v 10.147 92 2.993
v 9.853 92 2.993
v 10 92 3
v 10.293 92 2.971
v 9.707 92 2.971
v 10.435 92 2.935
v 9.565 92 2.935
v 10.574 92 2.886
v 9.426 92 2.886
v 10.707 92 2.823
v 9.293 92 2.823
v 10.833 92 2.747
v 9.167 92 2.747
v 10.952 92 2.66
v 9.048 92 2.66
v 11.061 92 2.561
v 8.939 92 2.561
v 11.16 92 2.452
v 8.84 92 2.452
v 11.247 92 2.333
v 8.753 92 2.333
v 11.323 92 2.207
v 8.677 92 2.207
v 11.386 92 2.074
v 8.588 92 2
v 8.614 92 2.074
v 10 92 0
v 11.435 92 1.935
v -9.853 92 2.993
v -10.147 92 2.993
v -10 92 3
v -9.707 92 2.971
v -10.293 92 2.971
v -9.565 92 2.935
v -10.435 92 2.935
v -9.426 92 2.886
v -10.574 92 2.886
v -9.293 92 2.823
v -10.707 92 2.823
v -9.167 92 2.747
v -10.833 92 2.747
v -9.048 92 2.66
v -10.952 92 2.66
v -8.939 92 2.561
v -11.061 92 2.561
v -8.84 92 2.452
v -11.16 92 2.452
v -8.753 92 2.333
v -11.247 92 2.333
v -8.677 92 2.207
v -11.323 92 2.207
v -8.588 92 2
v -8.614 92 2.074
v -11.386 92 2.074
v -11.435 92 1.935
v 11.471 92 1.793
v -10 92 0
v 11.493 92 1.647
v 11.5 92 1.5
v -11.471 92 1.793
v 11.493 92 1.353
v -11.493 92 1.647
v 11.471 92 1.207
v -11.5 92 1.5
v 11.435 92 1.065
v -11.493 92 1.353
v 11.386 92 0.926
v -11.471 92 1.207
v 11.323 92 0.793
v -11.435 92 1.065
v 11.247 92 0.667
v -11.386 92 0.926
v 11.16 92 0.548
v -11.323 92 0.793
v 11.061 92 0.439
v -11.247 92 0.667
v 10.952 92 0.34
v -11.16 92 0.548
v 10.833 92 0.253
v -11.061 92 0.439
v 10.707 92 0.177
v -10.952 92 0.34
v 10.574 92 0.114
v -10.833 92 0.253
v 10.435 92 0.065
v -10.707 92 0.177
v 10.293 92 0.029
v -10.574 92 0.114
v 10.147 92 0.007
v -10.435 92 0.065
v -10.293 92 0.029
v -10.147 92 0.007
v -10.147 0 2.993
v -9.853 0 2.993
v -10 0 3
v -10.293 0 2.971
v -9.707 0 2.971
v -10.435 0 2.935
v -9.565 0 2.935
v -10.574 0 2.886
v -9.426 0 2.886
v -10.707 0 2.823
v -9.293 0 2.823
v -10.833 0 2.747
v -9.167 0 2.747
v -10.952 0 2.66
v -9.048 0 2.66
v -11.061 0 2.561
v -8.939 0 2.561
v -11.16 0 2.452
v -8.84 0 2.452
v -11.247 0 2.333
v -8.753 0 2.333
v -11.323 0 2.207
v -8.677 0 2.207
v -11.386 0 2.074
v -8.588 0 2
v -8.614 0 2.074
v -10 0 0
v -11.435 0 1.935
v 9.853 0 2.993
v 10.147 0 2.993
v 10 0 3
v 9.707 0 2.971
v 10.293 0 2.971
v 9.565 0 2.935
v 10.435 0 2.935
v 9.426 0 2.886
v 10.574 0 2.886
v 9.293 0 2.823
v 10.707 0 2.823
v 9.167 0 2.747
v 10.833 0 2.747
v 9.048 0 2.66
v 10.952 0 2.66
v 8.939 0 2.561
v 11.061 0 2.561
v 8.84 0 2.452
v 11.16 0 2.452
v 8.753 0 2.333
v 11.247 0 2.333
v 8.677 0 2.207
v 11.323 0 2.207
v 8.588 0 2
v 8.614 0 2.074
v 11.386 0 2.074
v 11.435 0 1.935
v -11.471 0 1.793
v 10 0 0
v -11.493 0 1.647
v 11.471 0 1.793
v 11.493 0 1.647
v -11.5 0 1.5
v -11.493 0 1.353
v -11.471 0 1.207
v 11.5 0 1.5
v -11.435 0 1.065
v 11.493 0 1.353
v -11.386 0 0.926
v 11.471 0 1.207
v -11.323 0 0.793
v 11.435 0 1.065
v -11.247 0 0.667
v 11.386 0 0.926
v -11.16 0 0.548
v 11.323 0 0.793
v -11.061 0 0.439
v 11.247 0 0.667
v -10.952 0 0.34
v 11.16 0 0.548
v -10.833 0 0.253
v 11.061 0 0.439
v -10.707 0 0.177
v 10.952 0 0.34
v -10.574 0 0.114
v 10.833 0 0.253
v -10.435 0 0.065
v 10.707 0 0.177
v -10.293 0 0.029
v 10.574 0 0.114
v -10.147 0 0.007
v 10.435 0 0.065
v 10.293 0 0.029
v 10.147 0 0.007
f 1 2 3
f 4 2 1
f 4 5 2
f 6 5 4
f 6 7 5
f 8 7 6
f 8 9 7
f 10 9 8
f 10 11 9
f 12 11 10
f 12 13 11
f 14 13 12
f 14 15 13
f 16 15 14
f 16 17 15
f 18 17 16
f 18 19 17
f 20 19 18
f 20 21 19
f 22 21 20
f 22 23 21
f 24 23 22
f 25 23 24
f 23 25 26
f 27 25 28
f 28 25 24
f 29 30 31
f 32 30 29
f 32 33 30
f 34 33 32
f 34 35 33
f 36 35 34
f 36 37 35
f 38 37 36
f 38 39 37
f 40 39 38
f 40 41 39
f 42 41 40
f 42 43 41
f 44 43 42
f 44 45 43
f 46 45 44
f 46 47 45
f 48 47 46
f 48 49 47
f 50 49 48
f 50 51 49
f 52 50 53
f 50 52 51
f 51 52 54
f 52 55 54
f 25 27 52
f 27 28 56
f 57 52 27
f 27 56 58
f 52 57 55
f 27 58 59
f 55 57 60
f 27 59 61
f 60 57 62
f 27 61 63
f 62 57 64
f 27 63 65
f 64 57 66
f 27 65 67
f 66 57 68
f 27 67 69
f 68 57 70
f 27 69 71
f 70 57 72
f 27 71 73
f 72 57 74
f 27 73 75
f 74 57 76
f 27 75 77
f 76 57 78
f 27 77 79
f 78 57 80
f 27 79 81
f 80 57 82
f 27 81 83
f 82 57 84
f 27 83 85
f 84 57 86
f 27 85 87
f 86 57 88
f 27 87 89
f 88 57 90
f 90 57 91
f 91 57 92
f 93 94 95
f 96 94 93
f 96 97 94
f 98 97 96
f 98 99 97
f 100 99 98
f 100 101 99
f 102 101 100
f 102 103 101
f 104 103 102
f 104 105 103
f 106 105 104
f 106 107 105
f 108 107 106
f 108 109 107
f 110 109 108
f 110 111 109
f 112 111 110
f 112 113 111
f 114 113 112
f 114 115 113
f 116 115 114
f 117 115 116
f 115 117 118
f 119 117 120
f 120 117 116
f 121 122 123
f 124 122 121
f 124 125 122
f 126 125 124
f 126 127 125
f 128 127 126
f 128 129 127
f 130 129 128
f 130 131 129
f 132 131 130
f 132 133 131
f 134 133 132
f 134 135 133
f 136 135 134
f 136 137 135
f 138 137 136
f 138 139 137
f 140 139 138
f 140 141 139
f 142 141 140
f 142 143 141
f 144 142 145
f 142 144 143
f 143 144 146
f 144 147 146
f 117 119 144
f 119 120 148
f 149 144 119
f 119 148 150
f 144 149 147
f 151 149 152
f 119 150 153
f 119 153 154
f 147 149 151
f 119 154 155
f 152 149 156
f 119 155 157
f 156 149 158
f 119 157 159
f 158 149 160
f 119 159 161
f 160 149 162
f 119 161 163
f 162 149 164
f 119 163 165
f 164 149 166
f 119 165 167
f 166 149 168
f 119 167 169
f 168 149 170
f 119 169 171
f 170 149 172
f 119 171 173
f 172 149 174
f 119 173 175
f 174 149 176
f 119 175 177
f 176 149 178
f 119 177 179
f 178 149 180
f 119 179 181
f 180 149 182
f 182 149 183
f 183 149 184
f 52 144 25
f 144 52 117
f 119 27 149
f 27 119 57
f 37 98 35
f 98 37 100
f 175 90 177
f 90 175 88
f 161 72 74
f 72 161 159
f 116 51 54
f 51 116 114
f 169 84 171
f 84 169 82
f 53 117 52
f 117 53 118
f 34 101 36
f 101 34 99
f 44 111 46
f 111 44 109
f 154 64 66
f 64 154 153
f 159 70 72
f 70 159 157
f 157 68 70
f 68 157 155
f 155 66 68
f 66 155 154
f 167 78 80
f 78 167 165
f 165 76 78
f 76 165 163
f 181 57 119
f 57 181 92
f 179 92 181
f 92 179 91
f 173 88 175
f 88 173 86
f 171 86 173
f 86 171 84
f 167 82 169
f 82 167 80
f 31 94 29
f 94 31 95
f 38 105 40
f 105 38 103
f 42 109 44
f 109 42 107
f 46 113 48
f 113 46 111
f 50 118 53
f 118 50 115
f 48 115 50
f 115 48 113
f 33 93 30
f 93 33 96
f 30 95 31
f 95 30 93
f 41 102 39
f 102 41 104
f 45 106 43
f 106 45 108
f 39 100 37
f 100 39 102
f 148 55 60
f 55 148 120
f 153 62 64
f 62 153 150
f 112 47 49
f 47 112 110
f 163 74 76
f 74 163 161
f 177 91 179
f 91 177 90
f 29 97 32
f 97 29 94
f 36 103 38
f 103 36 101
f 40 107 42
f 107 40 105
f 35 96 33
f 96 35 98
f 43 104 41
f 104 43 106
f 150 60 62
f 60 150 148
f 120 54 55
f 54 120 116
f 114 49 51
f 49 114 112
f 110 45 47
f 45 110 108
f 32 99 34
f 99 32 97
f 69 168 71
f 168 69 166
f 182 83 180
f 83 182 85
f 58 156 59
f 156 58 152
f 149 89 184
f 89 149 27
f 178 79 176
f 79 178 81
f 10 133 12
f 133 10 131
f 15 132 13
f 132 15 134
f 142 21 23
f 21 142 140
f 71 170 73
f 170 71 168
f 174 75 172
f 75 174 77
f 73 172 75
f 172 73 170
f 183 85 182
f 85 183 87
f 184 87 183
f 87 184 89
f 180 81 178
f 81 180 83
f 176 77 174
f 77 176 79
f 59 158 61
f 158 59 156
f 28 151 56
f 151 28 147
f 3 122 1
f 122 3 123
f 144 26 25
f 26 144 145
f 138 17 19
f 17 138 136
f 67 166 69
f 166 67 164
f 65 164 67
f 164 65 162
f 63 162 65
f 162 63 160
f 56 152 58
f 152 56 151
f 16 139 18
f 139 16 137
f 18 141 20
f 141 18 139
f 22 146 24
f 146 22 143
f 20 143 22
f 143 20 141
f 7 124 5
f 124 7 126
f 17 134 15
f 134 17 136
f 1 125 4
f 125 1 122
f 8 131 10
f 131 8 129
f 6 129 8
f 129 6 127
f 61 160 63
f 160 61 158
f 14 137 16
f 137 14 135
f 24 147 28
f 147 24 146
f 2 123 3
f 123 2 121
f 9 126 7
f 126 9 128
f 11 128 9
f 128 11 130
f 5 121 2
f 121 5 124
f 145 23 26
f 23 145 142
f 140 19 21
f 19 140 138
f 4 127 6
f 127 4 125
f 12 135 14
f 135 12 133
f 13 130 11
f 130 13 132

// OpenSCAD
$fn=64;
translate(v = [0, 0, 1.000])
rotate(a = [-90, 0, 0])
union(){translate(v = [-10.000, -1.000])
cube(size = [20.000, 2, 92]);
translate(v = [-10.000, -0.500])
cylinder(h = 92, r = 1.500);
translate(v = [10.000, -0.500])
cylinder(h = 92, r = 1.500);
}
